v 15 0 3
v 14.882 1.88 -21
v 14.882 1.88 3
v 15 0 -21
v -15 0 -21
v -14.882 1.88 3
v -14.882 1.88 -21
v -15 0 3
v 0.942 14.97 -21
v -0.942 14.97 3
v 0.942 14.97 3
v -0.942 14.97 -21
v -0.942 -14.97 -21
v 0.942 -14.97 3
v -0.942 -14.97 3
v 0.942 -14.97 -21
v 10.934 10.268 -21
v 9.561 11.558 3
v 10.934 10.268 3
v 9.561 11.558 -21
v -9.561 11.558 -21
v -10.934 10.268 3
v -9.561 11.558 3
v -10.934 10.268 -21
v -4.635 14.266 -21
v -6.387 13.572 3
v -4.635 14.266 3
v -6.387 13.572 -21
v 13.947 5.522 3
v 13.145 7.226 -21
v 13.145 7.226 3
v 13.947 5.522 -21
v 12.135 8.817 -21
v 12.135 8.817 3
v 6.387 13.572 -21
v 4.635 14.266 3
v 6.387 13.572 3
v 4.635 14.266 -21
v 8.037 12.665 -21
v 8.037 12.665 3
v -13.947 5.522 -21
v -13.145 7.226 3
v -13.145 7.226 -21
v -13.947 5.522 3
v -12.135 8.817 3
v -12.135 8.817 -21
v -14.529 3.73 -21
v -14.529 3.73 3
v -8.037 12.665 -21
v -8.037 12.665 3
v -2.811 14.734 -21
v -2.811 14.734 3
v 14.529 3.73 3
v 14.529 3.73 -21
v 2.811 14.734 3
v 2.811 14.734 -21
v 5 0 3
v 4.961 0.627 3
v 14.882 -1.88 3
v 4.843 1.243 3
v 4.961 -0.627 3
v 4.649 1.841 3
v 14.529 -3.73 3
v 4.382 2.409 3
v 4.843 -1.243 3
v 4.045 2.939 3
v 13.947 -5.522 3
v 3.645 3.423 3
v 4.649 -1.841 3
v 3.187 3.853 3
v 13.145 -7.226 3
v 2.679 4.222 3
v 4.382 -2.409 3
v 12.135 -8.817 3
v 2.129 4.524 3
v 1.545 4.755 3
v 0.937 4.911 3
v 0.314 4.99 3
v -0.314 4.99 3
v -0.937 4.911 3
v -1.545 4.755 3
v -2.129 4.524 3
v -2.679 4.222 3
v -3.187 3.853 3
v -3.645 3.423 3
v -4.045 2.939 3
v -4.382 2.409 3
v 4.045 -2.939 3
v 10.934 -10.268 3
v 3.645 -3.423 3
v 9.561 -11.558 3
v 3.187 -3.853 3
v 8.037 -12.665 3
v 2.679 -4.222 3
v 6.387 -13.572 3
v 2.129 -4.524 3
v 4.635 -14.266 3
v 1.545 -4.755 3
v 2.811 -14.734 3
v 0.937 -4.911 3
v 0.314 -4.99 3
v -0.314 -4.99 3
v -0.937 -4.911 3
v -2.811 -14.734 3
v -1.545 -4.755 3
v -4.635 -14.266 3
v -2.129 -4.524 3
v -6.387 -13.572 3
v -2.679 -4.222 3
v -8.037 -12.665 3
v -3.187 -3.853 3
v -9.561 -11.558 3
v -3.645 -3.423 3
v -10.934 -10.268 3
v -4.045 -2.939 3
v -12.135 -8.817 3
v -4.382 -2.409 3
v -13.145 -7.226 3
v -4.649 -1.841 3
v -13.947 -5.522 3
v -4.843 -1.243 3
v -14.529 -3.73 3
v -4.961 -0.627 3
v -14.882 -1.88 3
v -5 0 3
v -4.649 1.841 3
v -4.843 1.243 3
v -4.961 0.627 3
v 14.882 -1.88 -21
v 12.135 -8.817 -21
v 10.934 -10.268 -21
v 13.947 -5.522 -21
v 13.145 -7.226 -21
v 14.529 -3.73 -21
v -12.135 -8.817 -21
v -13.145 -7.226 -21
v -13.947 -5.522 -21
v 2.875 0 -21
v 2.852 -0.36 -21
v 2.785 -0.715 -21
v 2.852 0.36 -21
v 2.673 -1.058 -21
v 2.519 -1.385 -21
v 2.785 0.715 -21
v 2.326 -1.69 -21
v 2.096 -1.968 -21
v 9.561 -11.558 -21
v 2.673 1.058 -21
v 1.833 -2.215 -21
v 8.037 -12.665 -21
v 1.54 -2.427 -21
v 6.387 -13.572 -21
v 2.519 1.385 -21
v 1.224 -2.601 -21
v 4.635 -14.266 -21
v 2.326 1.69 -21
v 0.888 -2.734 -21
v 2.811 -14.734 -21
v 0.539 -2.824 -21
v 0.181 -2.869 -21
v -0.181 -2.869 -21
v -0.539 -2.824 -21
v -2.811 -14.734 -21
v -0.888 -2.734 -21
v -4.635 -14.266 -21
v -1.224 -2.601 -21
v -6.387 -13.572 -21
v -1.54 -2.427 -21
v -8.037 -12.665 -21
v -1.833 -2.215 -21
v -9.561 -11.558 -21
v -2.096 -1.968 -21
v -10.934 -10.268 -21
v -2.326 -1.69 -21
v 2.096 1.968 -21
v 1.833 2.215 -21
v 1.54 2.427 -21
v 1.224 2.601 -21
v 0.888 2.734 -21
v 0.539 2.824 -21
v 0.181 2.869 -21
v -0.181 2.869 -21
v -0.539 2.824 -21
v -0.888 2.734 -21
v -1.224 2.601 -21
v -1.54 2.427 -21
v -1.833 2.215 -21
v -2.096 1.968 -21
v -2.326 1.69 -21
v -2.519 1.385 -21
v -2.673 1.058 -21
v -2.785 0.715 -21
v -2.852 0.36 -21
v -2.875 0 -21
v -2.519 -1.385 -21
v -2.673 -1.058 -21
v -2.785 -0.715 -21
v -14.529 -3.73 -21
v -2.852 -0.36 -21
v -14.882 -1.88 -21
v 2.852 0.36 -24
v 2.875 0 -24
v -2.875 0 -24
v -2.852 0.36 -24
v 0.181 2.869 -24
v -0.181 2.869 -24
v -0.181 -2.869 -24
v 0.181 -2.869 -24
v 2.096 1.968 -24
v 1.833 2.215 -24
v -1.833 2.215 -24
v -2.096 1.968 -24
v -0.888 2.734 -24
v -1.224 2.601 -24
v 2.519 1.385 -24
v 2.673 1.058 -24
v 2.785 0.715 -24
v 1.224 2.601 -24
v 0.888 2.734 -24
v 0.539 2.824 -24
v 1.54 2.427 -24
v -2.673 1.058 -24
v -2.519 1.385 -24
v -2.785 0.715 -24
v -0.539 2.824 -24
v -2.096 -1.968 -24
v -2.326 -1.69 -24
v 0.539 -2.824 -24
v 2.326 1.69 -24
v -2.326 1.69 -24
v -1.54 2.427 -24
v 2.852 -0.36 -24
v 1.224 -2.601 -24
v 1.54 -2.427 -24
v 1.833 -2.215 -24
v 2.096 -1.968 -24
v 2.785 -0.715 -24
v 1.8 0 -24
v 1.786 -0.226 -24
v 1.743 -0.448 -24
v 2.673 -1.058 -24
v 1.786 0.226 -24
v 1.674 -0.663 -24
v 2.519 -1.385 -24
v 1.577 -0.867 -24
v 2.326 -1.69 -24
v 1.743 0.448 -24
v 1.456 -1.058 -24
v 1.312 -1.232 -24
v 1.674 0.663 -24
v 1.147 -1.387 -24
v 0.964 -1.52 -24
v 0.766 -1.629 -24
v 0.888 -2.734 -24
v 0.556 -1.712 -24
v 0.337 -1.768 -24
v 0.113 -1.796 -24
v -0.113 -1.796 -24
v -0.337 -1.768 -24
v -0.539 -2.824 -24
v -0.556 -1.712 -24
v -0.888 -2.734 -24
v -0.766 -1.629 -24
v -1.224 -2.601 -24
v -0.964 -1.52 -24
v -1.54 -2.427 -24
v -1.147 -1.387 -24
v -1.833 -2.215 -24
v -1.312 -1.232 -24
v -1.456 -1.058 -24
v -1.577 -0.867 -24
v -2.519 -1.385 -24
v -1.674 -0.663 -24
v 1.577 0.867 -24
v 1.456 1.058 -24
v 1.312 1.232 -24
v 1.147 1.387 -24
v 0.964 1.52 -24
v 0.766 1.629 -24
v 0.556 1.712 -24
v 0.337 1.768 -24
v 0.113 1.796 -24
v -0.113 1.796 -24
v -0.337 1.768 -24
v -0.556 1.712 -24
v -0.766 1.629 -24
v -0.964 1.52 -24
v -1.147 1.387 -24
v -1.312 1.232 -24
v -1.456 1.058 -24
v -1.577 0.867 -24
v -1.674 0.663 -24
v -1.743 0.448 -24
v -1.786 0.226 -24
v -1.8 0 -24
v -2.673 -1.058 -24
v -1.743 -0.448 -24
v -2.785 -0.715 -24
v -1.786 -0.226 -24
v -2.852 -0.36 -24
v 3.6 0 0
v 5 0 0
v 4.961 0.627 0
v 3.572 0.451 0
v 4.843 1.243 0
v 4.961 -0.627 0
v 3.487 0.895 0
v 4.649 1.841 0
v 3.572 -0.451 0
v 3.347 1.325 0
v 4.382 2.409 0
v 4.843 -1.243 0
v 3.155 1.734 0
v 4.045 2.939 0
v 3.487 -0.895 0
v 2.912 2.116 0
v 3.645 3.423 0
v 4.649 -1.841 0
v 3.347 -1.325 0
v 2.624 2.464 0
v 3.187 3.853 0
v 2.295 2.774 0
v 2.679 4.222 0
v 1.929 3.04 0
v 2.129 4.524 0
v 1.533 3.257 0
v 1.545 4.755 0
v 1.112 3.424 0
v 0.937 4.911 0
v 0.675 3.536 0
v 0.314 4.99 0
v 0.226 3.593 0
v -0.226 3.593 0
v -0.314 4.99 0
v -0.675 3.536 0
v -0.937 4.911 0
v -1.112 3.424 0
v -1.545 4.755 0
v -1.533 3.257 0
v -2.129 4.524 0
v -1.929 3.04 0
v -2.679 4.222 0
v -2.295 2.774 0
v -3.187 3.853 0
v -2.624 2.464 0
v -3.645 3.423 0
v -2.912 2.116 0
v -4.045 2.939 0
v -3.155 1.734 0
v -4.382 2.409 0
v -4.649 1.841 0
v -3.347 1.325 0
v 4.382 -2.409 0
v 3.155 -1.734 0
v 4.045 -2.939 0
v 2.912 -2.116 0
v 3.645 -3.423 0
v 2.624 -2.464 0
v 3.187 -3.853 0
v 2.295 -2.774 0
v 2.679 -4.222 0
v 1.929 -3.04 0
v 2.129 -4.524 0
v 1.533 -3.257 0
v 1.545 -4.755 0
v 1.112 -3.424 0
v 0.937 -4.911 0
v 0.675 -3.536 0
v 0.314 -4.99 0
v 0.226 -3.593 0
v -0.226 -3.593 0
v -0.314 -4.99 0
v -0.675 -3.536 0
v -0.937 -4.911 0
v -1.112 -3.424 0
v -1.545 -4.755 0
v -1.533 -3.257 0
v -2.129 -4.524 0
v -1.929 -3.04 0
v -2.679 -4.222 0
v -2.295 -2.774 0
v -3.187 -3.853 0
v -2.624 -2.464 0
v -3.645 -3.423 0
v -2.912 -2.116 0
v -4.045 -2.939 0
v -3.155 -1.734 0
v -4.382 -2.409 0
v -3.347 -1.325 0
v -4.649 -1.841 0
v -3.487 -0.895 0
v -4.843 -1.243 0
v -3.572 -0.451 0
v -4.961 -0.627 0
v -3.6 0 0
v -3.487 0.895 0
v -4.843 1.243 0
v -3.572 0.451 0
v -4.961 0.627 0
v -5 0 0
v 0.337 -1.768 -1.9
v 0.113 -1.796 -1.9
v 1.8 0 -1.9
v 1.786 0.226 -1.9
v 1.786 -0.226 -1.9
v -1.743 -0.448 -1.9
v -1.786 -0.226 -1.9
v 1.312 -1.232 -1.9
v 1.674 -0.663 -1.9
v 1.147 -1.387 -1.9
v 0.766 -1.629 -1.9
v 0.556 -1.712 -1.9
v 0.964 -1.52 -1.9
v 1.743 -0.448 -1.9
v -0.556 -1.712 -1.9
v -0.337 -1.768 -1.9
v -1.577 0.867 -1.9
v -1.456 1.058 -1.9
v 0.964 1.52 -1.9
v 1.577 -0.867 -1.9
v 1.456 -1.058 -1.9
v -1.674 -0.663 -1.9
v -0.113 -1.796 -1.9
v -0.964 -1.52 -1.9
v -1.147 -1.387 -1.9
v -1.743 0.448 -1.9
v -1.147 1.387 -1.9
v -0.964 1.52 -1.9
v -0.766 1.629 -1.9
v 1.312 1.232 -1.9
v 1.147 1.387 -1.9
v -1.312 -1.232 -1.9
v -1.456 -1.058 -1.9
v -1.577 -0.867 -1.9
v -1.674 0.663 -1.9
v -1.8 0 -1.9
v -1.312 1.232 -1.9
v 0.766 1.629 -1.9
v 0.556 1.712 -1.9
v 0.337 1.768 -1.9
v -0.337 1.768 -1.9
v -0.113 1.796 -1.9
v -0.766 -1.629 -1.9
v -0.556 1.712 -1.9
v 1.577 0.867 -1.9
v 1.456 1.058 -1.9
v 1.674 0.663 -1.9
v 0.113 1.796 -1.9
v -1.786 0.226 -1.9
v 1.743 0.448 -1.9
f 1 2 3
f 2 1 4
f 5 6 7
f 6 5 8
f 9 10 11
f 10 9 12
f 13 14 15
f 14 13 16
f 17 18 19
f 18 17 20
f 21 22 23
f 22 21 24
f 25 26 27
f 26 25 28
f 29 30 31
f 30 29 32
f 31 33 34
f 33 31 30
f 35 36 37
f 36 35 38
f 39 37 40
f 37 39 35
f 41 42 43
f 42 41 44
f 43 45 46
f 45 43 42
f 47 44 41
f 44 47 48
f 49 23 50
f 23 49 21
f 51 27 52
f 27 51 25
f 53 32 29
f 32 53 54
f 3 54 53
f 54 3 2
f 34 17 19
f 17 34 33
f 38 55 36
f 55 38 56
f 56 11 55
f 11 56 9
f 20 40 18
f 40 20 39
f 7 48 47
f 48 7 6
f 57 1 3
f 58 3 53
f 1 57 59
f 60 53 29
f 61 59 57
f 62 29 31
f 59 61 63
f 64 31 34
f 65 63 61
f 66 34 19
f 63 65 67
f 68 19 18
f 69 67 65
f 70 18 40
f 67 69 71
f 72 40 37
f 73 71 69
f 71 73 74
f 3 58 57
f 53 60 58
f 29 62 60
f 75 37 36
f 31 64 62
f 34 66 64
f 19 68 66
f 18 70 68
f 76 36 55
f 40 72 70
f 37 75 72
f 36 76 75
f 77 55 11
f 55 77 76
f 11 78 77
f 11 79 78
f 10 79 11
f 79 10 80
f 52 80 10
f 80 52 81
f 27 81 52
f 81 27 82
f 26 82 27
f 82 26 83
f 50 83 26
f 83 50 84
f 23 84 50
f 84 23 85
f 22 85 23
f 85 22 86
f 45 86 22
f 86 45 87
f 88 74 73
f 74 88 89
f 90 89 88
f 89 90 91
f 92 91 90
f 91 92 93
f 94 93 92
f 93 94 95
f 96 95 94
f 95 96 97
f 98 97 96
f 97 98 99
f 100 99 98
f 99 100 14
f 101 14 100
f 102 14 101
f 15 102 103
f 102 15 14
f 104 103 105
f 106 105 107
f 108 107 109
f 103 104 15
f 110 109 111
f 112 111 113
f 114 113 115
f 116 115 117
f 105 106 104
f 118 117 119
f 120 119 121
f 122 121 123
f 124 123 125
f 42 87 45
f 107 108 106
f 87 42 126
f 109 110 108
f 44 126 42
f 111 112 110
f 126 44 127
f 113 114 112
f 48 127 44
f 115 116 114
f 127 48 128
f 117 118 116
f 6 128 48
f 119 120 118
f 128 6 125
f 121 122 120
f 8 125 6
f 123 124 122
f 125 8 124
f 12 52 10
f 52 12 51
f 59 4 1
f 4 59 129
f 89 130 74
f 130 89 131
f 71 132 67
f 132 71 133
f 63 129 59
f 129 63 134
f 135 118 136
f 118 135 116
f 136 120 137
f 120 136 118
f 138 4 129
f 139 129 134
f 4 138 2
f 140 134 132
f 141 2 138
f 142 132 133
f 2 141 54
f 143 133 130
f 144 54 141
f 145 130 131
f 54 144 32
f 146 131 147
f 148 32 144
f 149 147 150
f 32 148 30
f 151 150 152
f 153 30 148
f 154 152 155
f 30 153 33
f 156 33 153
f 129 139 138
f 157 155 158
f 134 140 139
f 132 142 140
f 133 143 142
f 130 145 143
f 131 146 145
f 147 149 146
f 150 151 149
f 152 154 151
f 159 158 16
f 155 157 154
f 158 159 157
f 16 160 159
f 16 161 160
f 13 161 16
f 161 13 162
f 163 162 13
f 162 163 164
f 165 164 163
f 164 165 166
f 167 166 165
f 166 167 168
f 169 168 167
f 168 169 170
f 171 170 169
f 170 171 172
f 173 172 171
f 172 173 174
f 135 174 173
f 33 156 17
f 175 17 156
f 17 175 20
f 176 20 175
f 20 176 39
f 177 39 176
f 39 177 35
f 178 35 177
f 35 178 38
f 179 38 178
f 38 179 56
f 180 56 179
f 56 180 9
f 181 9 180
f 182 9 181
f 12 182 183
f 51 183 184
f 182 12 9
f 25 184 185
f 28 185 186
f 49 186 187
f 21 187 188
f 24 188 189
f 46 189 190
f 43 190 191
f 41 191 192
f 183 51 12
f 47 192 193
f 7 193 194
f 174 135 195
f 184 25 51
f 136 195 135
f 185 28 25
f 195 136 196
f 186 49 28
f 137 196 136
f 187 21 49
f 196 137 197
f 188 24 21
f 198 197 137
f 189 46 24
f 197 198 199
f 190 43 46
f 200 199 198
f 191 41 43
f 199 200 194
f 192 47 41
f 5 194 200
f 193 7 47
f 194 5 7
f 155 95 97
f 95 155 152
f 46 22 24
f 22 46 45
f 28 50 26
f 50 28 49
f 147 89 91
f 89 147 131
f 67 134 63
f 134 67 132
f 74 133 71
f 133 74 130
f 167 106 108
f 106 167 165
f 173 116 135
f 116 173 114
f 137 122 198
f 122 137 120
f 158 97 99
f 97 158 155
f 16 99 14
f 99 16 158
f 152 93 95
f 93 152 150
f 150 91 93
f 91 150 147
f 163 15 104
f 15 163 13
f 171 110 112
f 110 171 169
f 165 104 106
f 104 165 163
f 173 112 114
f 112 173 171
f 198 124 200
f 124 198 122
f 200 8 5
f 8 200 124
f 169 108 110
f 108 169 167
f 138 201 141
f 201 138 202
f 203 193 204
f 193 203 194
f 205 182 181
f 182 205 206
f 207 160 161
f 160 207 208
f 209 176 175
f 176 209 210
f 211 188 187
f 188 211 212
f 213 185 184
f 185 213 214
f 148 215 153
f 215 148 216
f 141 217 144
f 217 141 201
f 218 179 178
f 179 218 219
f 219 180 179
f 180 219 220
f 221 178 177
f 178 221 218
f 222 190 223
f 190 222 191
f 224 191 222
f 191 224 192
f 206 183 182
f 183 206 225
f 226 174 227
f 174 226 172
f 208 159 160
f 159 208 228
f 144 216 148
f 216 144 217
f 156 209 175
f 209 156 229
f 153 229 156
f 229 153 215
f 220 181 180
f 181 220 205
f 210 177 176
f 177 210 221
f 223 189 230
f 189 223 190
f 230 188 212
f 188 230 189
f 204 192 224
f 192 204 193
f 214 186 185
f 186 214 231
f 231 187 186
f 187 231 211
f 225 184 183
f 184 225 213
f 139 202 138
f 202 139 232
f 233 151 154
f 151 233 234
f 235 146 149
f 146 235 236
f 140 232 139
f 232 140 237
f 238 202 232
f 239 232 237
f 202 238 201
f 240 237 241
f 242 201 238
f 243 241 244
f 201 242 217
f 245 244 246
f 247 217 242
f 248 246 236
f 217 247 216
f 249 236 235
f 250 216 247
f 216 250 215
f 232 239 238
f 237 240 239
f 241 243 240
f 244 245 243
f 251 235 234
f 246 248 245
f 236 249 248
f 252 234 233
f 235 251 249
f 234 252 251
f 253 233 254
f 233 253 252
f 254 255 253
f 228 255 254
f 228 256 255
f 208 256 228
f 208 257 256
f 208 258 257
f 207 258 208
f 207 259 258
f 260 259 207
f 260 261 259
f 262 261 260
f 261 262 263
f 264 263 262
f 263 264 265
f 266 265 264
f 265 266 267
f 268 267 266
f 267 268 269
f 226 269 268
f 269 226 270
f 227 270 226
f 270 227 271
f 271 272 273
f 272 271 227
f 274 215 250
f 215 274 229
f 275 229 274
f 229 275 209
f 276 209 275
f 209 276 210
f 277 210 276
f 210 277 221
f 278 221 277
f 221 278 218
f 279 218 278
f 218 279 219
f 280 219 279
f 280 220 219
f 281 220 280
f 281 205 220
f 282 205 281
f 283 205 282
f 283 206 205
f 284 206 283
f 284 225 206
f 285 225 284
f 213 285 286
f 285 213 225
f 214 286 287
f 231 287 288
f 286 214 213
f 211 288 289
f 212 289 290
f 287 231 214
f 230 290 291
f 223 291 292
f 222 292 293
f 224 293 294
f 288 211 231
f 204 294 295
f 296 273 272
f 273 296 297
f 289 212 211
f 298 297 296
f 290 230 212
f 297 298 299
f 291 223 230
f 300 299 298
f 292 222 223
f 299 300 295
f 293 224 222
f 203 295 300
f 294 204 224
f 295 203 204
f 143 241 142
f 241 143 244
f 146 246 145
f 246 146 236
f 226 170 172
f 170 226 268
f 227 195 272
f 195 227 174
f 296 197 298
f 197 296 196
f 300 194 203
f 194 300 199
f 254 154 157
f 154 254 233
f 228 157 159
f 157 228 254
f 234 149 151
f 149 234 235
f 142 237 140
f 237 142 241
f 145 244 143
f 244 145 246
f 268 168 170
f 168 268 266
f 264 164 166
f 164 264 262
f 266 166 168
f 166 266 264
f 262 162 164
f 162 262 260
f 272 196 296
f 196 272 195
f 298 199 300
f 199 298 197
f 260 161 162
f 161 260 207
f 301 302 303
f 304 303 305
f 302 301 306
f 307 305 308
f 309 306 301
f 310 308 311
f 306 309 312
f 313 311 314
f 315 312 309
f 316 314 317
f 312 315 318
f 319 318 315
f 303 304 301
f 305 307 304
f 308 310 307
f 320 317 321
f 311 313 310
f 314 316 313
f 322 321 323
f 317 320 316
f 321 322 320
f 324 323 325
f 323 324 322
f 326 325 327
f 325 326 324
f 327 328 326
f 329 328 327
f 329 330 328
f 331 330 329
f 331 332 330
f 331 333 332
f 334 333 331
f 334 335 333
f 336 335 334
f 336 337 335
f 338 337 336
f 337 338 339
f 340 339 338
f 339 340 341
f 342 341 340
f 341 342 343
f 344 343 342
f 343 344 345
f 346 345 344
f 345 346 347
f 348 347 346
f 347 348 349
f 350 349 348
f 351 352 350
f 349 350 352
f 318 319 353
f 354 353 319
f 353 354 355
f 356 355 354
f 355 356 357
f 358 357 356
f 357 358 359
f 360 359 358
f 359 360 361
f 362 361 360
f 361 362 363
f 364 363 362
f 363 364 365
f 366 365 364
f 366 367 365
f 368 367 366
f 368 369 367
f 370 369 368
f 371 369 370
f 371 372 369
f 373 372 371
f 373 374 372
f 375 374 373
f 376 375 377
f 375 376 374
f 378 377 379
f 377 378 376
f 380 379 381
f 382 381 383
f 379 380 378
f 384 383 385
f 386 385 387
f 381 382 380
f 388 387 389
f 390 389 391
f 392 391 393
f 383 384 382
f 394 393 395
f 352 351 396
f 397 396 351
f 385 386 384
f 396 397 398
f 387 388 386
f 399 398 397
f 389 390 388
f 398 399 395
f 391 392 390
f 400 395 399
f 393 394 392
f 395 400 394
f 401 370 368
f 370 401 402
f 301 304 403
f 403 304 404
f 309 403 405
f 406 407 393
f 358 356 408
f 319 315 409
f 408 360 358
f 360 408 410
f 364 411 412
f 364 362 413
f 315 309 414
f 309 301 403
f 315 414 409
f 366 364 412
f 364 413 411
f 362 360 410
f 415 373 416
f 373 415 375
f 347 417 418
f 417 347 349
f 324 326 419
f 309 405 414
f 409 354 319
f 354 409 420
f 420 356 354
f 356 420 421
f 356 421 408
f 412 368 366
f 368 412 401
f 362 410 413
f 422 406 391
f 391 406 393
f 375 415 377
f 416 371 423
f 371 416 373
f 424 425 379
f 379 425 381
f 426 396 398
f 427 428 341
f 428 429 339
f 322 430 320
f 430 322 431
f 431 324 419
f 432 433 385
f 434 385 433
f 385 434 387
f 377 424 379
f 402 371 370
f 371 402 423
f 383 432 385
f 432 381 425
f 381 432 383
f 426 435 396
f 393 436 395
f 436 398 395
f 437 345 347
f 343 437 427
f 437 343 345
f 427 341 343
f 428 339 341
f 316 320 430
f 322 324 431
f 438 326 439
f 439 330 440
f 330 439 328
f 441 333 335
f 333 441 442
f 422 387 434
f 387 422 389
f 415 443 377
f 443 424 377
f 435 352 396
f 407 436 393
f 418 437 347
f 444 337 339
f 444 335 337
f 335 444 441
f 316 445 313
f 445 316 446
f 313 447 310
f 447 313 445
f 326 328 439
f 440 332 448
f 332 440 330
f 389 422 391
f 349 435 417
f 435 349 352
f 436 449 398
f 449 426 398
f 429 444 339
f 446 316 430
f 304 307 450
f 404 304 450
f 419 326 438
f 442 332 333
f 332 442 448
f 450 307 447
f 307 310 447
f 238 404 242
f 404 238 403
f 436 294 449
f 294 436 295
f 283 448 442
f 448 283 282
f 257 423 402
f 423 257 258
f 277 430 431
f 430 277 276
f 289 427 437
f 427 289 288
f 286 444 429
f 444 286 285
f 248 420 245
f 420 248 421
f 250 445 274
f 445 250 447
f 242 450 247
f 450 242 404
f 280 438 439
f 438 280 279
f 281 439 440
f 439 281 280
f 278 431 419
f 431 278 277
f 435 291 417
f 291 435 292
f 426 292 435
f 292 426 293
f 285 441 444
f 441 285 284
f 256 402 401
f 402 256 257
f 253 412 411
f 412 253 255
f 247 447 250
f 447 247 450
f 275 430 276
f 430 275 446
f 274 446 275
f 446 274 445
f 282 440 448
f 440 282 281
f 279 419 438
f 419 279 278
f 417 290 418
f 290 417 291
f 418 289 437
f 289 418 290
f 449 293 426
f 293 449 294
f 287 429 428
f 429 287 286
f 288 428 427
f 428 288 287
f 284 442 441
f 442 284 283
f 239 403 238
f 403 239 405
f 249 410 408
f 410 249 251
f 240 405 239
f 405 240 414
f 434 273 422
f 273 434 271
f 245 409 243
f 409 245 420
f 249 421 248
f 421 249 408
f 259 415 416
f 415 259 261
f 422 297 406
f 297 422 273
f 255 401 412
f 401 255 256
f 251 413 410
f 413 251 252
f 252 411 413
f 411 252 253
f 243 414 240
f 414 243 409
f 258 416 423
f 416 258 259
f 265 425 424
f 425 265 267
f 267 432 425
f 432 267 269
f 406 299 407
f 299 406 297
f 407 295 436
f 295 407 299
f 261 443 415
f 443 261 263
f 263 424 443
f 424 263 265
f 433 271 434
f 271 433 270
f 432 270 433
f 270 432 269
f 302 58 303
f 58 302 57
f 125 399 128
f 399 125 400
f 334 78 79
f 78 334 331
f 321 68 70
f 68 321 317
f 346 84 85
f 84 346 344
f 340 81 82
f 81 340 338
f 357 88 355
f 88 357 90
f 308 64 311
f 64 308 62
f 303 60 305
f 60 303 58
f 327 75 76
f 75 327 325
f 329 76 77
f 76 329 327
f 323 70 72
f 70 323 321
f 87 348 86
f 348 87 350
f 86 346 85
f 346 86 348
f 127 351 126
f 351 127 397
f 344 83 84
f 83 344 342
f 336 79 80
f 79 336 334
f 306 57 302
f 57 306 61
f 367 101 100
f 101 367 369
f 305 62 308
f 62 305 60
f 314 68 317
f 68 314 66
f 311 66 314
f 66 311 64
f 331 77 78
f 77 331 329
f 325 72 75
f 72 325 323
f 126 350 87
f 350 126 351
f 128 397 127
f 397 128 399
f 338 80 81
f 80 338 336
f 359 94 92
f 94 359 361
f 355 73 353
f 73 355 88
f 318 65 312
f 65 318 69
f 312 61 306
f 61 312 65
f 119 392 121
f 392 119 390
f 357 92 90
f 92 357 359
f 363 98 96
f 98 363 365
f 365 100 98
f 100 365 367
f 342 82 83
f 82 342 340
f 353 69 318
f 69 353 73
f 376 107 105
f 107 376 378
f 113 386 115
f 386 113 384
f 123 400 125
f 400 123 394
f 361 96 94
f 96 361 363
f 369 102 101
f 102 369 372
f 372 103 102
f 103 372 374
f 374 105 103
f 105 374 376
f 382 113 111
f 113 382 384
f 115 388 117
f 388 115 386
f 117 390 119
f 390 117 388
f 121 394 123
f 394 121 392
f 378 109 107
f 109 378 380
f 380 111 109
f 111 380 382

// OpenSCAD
$fn = 50;


difference() {
	union() {
		translate(v = [0, 0, -21.0000000000]) {
			cylinder(h = 24, r = 15.0000000000);
		}
		#translate(v = [0, 0, -24.0000000000]) {
			cylinder(h = 24, r = 2.8750000000);
		}
	}
	union() {
		translate(v = [0, 0, 0]) {
			rotate(a = [0, 0, 0]) {
				difference() {
					union() {
						translate(v = [0, 0, -24.0000000000]) {
							cylinder(h = 24, r = 1.5000000000);
						}
						translate(v = [0, 0, -1.9000000000]) {
							cylinder(h = 1.9000000000, r1 = 1.8000000000, r2 = 3.6000000000);
						}
						translate(v = [0, 0, -24.0000000000]) {
							cylinder(h = 24, r = 1.8000000000);
						}
						translate(v = [0, 0, -24.0000000000]) {
							cylinder(h = 24, r = 1.5000000000);
						}
					}
					union();
				}
			}
		}
		#cylinder(h = 3, r = 5.0000000000);
	}
}
